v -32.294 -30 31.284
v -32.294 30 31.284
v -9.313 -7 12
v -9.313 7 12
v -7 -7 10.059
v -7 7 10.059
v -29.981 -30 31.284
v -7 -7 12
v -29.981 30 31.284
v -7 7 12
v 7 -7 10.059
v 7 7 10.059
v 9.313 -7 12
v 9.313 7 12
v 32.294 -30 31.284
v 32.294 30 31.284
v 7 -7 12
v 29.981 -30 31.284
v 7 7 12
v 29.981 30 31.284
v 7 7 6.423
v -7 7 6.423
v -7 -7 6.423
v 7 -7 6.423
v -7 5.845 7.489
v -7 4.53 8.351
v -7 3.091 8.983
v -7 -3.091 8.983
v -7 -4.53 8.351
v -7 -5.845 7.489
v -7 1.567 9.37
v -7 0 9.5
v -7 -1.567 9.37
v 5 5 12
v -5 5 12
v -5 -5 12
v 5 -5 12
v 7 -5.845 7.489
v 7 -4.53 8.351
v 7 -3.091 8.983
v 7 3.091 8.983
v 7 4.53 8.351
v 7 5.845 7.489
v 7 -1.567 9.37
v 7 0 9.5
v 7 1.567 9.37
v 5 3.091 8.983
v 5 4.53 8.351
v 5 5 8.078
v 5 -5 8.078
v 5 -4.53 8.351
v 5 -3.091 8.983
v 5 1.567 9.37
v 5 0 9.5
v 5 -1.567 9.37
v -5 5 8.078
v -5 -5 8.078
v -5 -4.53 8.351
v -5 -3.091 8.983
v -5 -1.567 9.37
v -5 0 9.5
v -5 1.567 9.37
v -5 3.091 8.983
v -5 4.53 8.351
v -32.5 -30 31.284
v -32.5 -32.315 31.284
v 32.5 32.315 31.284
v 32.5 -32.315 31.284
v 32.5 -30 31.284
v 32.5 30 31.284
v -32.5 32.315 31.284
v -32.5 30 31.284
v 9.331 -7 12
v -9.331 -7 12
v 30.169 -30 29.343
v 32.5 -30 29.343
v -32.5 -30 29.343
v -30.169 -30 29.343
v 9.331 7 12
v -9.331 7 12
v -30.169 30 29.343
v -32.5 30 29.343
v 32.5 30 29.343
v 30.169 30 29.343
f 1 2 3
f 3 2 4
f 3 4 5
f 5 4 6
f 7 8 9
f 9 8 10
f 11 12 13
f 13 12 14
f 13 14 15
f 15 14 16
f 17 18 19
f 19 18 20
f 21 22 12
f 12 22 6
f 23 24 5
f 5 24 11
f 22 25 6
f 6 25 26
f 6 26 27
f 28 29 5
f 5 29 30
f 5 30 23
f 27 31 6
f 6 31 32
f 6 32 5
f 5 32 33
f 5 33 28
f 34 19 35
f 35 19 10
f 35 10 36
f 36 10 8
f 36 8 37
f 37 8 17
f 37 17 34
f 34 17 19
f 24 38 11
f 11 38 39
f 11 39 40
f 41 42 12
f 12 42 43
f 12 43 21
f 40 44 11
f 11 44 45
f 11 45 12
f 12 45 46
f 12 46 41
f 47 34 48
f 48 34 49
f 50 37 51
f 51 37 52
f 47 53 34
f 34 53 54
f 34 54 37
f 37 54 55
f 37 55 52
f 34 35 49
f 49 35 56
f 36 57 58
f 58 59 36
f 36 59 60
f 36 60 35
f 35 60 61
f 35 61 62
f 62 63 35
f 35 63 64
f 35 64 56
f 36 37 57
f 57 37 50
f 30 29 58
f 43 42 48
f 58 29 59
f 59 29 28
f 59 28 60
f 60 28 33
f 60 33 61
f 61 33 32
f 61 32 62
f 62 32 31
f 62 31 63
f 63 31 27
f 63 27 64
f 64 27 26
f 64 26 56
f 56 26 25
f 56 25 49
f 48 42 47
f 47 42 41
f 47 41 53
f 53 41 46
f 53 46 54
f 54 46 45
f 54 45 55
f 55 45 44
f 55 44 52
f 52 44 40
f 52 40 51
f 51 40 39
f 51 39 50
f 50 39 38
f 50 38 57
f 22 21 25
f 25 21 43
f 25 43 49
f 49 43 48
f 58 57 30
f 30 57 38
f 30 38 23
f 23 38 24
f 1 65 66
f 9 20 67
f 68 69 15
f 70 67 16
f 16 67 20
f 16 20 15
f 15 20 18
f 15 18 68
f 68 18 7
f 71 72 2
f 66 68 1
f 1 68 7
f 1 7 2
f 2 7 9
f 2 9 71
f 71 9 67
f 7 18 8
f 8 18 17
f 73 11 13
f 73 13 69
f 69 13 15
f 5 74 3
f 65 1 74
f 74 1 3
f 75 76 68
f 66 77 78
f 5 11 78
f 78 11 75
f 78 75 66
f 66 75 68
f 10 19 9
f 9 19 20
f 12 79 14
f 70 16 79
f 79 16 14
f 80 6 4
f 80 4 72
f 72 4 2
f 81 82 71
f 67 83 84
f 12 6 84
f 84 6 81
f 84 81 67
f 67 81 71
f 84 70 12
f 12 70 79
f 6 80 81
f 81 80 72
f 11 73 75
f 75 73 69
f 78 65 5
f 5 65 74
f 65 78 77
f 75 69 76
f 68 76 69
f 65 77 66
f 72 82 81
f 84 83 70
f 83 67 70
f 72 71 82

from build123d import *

# Parameters (mm, degrees)
SKETCH1_W           = 14
SKETCH1_H           = 14
SKETCH1_W_2         = 10
SKETCH1_H_2         = 10
BOSS_EXTRUDE1_DEPTH = 12
SKETCH2_R           = 9.5
CUT_EXTRUDE1_DEPTH  = 30
BOSS_EXTRUDE2_DEPTH = 30
BOSS_EXTRUDE3_DEPTH = 32.5
CUT_EXTRUDE2_DEPTH  = 79.125958548
CUT_EXTRUDE3_DEPTH  = 32.5
BOSS_EXTRUDE4_DEPTH = 32.5


with BuildPart() as part:
    # Sketch1 → Boss-Extrude1 (new body)
    with BuildSketch(Plane.XY):
        Rectangle(SKETCH1_W, SKETCH1_H)
        Rectangle(SKETCH1_W_2, SKETCH1_H_2, mode=Mode.SUBTRACT)
    extrude(amount=BOSS_EXTRUDE1_DEPTH)

    # Sketch2 → Cut-Extrude1 (cut)
    with BuildSketch(Plane(origin=(7, 0, 0), x_dir=(0, 0, -1), z_dir=(1, 0, 0))):
        Circle(SKETCH2_R)
    extrude(amount=-CUT_EXTRUDE1_DEPTH, mode=Mode.SUBTRACT)

    # Sketch4 → Boss-Extrude2 (add, symmetric)
    with BuildSketch(Plane(origin=(0, 0, 0), x_dir=(1, 0, 0), z_dir=(0, 1, 0))):
        Polygon((-7, -12), (-29.981333294, -31.283628291), (-32.293968462, -31.283628291), (-7, -10.059468683), align=None)
        Polygon((7, -10.059468683), (7, -12), (29.981333294, -31.283628291), (32.293968462, -31.283628291), align=None)
    extrude(amount=BOSS_EXTRUDE2_DEPTH, both=True)

    # Sketch6 → Boss-Extrude3 (add, symmetric)
    with BuildSketch(Plane(origin=(0, 0, 0), x_dir=(0, 0, -1), z_dir=(1, 0, 0))):
        Polygon((-10.059468683, -7), (-12, -7), (-31.283628291, -30), (-29.343096974, -30), align=None)
        Polygon((-31.283628291, 30), (-29.343096974, 30), (-10.059468683, 7), (-12, 7), align=None)
    extrude(amount=BOSS_EXTRUDE3_DEPTH, both=True)

    # Sketch7 → Cut-Extrude2 (cut, through all)
    with BuildSketch(Plane(origin=(32.5, 0, 0), x_dir=(0, 0, -1), z_dir=(1, 0, 0))):
        Polygon((-29.343096974, 30), (-10.059468683, 7), (-10.059468683, 30), align=None)
        Polygon((-29.343096974, -30), (-10.059468683, -7), (-10.059468683, -30), align=None)
    extrude(amount=-CUT_EXTRUDE2_DEPTH, mode=Mode.SUBTRACT)

    # Sketch9 → Cut-Extrude3 (cut, symmetric)
    with BuildSketch(Plane(origin=(0, 0, 0), x_dir=(1, 0, 0), z_dir=(0, 1, 0))):
        Polygon((-32.5, -31.283628291), (-7, -10.059468683), (-32.5, -10.059468683), align=None)
        Polygon((7, -10.059468683), (32.5, -10.059468683), (32.5, -31.283628291), align=None)
    extrude(amount=CUT_EXTRUDE3_DEPTH, both=True, mode=Mode.SUBTRACT)

    # Sketch10 → Boss-Extrude4 (add, symmetric)
    with BuildSketch(Plane(origin=(0, 0, 0), x_dir=(0, 0, -1), z_dir=(1, 0, 0))):
        Polygon((-31.283628291, -30), (-29.343096974, -30), (-31.283628291, -32.314513618), align=None)
        Polygon((-29.343096974, 30), (-31.283628291, 32.314513618), (-31.283628291, 30), align=None)
    extrude(amount=BOSS_EXTRUDE4_DEPTH, both=True)


solid = part.part
